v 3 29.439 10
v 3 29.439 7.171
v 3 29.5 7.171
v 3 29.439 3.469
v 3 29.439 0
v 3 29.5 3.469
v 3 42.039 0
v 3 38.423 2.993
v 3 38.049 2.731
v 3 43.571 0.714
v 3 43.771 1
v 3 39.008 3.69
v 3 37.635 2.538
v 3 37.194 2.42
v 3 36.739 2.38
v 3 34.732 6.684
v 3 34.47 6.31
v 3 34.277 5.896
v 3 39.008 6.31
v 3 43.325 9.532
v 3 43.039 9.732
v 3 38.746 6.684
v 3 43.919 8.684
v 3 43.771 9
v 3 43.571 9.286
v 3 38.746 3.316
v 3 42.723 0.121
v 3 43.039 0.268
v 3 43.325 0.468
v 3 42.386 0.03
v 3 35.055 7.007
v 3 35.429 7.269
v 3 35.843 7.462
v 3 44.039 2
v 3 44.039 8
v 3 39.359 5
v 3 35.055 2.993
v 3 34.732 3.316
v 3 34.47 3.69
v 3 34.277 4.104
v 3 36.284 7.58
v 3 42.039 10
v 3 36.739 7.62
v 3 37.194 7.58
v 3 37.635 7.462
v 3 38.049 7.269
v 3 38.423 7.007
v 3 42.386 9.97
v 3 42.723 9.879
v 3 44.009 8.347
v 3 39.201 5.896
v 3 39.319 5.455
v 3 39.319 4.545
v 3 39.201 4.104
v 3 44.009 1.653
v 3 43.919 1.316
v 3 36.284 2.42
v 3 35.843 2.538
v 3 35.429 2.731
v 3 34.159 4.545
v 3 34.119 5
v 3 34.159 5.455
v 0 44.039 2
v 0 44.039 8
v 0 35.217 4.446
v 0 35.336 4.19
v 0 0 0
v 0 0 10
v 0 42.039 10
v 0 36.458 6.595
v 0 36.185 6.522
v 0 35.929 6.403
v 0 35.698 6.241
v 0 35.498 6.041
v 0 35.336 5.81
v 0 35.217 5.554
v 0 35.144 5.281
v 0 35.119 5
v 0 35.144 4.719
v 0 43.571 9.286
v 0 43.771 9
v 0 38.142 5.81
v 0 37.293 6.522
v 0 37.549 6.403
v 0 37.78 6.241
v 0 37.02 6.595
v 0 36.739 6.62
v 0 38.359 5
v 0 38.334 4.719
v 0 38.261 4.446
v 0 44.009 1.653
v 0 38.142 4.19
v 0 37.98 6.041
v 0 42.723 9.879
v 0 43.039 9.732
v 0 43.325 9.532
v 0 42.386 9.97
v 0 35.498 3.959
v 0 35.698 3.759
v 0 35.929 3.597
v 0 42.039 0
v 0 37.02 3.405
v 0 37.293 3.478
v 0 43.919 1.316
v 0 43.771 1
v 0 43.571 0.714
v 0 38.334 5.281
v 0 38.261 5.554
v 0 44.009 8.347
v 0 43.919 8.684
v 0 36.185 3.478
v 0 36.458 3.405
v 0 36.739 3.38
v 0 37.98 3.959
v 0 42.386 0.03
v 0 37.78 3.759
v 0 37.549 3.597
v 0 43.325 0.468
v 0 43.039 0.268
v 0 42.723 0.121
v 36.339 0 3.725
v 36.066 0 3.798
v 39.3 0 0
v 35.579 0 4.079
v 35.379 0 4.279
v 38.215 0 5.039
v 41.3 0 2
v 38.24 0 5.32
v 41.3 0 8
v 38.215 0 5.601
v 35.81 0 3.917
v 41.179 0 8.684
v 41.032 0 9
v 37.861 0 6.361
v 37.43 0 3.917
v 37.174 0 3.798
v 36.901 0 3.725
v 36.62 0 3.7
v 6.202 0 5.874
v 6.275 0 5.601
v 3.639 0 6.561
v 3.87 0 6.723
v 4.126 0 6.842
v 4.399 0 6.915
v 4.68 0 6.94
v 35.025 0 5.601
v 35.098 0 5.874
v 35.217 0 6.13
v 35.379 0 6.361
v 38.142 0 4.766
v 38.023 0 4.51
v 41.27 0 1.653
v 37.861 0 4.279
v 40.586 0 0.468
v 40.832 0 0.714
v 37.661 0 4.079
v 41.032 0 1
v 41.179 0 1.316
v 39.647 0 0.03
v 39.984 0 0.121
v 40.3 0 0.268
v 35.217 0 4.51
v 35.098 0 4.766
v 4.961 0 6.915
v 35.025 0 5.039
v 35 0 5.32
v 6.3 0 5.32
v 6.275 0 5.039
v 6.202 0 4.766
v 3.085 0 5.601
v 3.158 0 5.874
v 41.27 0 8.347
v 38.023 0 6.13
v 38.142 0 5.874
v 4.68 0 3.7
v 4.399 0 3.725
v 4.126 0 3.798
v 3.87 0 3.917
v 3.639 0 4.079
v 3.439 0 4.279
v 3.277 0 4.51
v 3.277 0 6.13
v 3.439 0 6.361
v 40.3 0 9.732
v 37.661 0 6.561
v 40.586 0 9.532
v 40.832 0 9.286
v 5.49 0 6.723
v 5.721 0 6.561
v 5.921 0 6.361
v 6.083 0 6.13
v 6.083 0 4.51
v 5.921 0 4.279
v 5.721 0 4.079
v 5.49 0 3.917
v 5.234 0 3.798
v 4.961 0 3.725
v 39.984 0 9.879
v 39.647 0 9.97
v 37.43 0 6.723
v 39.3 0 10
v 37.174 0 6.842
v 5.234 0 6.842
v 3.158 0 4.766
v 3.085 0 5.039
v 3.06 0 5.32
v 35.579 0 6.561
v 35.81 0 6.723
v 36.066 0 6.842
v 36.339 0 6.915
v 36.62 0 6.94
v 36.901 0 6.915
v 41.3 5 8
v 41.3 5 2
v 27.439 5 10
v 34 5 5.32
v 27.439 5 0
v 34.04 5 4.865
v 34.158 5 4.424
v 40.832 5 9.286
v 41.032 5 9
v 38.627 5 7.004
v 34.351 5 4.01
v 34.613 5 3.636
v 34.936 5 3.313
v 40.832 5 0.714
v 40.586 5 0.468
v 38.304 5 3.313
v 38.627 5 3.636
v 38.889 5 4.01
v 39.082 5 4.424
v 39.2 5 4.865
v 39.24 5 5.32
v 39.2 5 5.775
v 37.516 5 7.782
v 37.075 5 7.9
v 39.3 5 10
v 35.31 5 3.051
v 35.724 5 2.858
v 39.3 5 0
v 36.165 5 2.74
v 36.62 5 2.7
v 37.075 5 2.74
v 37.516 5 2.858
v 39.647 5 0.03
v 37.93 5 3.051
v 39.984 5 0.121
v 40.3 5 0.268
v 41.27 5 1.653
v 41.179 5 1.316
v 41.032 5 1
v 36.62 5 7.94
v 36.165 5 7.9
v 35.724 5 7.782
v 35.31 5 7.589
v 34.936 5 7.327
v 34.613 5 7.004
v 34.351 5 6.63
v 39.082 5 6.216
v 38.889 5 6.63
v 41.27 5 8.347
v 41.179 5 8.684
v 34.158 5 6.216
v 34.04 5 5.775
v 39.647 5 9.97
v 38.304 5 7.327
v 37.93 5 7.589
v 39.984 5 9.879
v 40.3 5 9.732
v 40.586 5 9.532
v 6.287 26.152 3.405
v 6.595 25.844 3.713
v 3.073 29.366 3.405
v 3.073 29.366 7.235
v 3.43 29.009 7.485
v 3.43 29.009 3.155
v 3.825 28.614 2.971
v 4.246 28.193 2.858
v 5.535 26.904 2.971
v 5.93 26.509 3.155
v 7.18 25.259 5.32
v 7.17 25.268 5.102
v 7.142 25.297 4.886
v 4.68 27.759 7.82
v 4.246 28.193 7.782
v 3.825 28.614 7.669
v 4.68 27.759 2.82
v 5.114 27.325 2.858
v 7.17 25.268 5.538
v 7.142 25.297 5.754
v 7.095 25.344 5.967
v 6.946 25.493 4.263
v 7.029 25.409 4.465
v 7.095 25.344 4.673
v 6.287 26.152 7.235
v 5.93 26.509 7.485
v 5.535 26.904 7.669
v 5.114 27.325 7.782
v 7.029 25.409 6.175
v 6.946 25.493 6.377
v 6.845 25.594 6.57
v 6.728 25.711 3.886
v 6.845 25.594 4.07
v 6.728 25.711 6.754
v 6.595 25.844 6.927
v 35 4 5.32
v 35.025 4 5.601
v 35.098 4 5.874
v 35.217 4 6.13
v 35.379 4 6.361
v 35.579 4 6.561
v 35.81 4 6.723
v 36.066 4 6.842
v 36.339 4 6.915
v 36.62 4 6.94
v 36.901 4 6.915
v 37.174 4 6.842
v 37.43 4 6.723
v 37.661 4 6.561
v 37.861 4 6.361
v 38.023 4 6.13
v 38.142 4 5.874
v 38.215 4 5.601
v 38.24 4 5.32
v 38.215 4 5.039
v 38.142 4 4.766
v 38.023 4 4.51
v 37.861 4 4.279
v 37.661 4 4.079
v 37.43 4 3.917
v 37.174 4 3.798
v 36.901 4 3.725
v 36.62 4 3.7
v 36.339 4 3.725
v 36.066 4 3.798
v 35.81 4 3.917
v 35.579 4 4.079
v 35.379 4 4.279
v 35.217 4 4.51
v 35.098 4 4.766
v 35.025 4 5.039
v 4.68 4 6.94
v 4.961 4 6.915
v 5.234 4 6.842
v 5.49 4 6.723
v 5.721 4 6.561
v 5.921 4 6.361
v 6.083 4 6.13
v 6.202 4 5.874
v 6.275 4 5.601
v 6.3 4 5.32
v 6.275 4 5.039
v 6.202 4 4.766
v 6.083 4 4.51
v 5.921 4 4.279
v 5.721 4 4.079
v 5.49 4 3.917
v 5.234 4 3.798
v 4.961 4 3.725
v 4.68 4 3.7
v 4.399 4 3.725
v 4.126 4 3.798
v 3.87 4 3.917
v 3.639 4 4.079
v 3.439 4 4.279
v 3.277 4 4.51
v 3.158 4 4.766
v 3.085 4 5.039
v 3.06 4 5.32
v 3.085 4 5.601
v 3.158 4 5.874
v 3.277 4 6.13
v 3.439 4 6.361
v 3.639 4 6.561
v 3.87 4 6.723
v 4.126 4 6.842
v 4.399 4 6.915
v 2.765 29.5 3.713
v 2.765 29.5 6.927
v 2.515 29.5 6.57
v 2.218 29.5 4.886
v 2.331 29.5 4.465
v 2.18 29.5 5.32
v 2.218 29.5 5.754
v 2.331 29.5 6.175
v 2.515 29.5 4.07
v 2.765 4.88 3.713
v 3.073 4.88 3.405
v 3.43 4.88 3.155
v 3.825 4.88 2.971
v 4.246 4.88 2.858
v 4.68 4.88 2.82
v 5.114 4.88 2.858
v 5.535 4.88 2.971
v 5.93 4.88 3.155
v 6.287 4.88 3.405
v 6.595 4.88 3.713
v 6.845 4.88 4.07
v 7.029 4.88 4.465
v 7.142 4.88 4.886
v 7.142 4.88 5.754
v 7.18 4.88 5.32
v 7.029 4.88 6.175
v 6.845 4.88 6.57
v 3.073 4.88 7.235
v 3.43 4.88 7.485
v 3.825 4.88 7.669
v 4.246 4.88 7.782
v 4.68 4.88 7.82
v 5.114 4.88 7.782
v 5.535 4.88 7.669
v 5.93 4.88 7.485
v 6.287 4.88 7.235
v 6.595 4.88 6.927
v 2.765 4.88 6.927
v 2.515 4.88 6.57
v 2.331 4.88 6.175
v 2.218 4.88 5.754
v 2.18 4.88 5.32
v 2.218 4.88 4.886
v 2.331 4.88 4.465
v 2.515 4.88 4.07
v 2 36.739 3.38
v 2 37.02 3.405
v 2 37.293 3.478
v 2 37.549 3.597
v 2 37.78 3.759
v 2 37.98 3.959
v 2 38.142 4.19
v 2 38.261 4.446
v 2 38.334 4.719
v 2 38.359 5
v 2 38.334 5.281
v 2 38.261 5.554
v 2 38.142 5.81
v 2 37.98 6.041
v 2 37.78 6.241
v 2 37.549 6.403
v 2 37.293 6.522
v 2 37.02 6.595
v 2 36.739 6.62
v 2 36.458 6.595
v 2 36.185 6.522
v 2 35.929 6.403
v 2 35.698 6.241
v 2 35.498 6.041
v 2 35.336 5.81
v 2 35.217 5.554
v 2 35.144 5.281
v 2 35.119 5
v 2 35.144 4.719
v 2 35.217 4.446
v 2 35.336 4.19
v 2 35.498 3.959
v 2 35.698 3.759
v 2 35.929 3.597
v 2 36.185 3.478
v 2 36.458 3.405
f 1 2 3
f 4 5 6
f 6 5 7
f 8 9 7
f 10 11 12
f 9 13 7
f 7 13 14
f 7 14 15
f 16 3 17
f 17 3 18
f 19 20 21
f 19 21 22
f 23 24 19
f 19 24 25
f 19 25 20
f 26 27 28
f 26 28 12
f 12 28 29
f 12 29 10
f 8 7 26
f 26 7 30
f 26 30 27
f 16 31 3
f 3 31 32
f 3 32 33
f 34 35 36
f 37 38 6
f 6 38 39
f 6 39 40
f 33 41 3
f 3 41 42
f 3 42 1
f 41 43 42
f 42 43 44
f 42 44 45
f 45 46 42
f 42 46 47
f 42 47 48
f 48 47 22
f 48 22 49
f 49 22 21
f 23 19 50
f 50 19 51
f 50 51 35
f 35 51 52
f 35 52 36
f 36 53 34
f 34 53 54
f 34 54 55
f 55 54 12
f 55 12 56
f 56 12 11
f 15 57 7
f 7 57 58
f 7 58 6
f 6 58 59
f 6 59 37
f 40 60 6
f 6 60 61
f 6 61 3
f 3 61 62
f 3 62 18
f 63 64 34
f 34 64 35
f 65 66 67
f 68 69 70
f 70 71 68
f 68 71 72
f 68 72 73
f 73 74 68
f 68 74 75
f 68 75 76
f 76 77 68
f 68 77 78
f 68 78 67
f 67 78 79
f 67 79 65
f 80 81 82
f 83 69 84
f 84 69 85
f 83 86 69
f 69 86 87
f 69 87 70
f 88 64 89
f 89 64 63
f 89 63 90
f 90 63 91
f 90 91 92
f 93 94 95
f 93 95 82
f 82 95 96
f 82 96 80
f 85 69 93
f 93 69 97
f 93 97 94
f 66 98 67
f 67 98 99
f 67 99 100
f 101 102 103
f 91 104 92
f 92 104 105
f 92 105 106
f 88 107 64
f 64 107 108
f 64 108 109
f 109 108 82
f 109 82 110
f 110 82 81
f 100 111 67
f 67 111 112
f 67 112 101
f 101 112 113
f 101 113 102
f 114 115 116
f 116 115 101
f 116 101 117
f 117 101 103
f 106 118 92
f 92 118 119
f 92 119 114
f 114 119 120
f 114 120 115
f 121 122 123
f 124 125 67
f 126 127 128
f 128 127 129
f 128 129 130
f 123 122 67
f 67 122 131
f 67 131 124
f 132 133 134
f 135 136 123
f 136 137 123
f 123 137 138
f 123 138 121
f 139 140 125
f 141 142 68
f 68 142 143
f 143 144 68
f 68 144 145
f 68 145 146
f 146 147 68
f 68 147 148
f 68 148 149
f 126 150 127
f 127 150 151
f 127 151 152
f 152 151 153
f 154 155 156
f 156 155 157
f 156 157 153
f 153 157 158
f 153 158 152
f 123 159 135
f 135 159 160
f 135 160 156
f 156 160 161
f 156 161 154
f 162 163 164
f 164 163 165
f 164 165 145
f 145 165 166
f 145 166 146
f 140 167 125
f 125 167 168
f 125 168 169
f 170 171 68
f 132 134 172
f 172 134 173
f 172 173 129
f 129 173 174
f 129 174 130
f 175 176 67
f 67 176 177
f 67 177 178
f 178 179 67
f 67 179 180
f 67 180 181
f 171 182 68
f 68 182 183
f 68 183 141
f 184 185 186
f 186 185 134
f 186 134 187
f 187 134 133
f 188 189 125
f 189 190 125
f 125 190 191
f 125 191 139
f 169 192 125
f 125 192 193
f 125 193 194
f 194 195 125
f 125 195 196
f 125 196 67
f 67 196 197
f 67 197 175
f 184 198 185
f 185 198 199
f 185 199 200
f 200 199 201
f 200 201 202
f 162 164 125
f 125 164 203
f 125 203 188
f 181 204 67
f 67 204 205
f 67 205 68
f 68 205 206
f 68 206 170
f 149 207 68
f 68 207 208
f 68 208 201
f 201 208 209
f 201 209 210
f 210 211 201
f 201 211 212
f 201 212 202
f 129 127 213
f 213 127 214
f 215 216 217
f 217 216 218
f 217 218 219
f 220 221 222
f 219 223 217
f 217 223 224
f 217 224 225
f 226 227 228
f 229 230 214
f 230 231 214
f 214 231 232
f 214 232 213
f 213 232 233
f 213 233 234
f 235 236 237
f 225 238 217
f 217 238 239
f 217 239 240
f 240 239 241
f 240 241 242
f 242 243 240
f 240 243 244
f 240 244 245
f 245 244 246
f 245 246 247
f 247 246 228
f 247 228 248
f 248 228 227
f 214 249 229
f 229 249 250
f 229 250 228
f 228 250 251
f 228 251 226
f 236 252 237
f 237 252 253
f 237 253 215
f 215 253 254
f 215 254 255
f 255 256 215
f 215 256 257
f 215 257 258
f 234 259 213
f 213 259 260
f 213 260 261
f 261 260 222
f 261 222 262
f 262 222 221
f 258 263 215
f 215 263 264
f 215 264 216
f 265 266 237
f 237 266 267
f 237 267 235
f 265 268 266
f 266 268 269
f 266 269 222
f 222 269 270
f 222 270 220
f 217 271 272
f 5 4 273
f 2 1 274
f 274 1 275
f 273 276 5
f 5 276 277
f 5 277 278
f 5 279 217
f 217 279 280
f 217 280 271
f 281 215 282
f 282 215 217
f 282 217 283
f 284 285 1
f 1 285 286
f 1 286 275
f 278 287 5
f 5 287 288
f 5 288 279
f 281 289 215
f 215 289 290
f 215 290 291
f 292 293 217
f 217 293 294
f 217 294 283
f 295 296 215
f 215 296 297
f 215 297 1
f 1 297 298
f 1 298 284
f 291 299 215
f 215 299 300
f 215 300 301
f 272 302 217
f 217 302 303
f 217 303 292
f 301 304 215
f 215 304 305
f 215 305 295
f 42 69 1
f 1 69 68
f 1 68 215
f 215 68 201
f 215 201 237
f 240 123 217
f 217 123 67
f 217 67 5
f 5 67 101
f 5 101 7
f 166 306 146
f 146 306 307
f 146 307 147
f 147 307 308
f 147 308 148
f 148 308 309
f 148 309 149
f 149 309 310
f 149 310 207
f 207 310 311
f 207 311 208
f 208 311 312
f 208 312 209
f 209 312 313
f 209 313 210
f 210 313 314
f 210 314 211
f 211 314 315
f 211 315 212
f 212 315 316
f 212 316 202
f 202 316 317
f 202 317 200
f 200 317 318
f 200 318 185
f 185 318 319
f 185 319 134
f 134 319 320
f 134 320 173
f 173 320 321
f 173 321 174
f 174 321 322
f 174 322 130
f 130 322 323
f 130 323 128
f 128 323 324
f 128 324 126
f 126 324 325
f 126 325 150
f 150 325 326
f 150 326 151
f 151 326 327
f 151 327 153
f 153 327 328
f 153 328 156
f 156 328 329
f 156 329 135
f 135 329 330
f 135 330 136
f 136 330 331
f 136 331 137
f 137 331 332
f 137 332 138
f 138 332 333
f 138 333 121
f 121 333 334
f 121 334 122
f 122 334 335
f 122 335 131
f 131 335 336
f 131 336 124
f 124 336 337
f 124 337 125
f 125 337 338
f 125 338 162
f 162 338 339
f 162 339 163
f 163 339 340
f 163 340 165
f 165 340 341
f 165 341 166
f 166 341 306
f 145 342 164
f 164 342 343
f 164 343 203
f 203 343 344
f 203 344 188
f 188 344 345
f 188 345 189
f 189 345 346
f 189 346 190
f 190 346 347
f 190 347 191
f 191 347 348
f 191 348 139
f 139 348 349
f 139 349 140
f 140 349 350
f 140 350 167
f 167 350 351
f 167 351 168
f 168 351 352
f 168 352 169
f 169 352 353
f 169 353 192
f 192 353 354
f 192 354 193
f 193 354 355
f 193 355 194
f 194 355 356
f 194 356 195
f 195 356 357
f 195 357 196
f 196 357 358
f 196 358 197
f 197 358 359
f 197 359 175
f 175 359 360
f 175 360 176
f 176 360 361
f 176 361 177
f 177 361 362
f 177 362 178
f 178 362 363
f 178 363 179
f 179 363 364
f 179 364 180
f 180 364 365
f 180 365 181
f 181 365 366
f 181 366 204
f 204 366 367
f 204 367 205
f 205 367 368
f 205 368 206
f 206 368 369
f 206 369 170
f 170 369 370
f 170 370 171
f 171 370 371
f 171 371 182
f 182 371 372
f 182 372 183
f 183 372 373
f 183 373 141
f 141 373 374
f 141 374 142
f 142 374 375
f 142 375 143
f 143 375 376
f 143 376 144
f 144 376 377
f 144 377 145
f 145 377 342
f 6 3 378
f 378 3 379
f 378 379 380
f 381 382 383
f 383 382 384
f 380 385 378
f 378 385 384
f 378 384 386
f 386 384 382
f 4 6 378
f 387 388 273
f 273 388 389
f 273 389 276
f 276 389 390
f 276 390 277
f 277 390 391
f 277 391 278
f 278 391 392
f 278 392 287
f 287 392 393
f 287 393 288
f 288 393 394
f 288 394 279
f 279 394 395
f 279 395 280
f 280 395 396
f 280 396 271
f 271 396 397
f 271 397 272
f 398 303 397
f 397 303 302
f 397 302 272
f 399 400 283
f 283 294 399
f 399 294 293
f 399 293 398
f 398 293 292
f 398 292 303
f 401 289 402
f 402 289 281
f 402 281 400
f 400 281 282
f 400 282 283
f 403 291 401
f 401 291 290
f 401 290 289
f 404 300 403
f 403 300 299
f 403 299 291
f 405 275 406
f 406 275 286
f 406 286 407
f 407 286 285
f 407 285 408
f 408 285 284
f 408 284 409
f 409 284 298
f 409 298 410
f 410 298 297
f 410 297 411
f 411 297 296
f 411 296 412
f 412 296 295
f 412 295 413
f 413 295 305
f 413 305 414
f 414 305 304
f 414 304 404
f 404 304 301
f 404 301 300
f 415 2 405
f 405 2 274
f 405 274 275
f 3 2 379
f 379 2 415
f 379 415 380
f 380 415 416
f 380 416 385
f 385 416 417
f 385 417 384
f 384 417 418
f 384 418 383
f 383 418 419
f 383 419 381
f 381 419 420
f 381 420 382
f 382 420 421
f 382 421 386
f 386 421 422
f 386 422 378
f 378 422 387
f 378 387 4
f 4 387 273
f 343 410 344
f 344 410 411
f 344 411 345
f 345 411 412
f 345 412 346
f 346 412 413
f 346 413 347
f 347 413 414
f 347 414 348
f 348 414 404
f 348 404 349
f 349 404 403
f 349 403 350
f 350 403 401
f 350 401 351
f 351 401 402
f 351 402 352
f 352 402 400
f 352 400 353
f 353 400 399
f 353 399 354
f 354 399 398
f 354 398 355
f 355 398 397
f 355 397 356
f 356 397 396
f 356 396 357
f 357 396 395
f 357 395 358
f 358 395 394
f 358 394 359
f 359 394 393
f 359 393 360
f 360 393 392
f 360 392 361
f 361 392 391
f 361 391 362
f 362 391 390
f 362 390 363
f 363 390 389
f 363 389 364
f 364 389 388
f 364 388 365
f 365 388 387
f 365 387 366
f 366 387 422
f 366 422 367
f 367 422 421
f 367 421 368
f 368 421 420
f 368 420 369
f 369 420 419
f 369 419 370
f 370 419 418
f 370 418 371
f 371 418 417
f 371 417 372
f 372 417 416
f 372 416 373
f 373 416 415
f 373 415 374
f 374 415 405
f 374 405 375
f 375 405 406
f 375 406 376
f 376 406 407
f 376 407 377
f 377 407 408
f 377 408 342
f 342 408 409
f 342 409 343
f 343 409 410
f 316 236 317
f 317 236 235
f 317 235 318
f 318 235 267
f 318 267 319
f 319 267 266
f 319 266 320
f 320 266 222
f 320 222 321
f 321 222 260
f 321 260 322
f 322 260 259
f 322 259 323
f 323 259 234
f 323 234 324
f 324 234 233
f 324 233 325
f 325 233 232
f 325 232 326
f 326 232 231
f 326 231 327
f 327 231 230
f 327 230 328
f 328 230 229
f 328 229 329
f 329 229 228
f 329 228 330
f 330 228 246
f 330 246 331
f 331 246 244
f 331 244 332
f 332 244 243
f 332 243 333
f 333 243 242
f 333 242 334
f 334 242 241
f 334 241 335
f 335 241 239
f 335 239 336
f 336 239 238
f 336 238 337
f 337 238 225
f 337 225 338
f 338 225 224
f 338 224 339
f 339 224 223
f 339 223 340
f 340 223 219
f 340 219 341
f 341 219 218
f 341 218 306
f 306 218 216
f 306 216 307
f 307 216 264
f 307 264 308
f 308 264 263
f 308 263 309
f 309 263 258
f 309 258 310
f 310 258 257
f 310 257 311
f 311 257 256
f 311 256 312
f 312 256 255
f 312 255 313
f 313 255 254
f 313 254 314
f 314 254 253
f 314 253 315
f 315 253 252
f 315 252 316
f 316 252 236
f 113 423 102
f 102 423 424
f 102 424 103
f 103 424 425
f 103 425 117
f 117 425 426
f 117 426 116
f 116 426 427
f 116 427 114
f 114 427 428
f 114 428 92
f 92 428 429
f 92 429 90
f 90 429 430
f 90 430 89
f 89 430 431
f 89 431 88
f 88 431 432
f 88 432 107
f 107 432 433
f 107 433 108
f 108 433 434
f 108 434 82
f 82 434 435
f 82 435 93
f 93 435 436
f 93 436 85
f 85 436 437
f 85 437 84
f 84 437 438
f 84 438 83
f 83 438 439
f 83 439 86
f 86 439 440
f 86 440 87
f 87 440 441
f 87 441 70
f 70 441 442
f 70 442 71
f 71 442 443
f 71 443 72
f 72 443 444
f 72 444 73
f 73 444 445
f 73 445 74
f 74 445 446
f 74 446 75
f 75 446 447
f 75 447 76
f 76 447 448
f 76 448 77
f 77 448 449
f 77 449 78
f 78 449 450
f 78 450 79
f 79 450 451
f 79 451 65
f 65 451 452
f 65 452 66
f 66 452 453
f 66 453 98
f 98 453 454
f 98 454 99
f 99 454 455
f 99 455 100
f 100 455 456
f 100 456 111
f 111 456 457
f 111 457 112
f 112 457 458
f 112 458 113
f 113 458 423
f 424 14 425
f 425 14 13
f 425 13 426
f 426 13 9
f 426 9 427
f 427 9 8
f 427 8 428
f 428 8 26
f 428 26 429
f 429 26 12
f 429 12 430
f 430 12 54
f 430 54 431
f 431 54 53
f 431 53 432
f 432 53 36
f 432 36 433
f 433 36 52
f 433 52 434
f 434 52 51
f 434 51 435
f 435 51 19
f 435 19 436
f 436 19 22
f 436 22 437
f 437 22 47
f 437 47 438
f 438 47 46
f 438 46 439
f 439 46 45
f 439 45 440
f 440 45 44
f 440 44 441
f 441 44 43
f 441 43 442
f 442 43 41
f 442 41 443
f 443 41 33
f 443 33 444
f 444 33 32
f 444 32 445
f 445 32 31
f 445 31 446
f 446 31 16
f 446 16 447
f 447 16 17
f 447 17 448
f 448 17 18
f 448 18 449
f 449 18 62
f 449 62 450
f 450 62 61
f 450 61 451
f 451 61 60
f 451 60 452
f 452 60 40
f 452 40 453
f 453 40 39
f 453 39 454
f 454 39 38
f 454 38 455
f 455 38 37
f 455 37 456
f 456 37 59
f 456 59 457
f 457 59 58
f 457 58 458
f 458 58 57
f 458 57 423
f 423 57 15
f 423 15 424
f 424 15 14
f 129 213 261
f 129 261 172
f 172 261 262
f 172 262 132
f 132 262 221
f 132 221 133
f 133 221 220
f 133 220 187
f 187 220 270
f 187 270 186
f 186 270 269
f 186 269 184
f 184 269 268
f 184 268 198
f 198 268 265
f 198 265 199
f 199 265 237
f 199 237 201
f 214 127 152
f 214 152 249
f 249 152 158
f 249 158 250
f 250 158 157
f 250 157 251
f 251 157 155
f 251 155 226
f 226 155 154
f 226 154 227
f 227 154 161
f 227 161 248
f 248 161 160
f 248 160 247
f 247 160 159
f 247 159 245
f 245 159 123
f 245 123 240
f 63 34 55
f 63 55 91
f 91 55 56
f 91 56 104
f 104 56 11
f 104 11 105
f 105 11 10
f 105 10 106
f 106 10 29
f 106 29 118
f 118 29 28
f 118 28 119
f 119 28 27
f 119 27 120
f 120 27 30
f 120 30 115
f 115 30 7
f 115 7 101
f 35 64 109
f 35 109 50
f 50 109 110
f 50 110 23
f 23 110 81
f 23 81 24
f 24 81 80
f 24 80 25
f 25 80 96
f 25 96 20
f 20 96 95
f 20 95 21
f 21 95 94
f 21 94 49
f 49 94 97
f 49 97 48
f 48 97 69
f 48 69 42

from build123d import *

# Parameters (mm, degrees)
ESTRUSIONE_ESTRUSIONE1_DEPTH = 10
SCHIZZO3_R                   = 1.62
TAGLIO_ESTRUSIONE1_DEPTH     = 8
SCHIZZO5_R                   = 1.62
TAGLIO_ESTRUSIONE4_DEPTH     = 24.5
SCHIZZO5_4_R                 = 2.5
TAGLIO_ESTRUSIONE5_DEPTH     = 24.5
SMUSSO4_SIZE                 = 1
SMUSSO5_SIZE                 = 1
SCHIZZO6_R                   = 1.62
TAGLIO_ESTRUSIONE6_DEPTH     = 24.5
SMUSSO6_SIZE                 = 1
RACCORDO1_R                  = 2


with BuildPart() as part:
    # Schizzo2 → Estrusione-Estrusione1 (new body)
    with BuildSketch(Plane.XY):
        Polygon((3, 29.438649361), (27.438649361, 5), (41.3, 5), (41.3, 0), (0, 0), (0, 5), (0, 44.039135738), (3, 44.039135738), align=None)
    extrude(amount=ESTRUSIONE_ESTRUSIONE1_DEPTH)

    # Schizzo3 → Taglio-Estrusione1 (cut)
    with BuildSketch(Plane(origin=(0, 5, 0), x_dir=(1, 0, 0), z_dir=(0, 1, 0))):
        with Locations(Location((36.62, -5.32, 0), (0, 0, 180))):
            Circle(SCHIZZO3_R)
    extrude(amount=-TAGLIO_ESTRUSIONE1_DEPTH, mode=Mode.SUBTRACT)

    # Schizzo5 → Taglio-Estrusione4 (cut)
    with BuildSketch(Plane(origin=(0, 5, 0), x_dir=(1, 0, 0), z_dir=(0, 1, 0))):
        with Locations(Location((4.68, -5.32, 0), (0, 0, 270))):
            Circle(SCHIZZO5_R)
    extrude(amount=-TAGLIO_ESTRUSIONE4_DEPTH, mode=Mode.SUBTRACT)

    # Schizzo5<4> → Taglio-Estrusione5 (cut)
    with BuildSketch(Plane(origin=(0, 5, 0), x_dir=(1, 0, 0), z_dir=(0, 1, 0))):
        with Locations(Location((4.68, -5.32, 0), (0, 0, 132.221614055))):
            Circle(SCHIZZO5_4_R)
    extrude(amount=TAGLIO_ESTRUSIONE5_DEPTH, mode=Mode.SUBTRACT)

    # Smusso4
    # the kernel refuses this chamfer: 1 mm, written as the material it takes off along each edge
    with BuildSketch(Plane(origin=(4.68, 5, 5.32), x_dir=(0, 0, 1), z_dir=(-1, 0, 0))) as smusso4_piece_1_section:
        Polygon((1.62 + SMUSSO4_SIZE, 0), (1.62, -SMUSSO4_SIZE), (1.62, 0), align=None)
    smusso4_piece_1 = revolve(axis=Axis((4.68, 5, 5.32), (0, 1, 0)), mode=Mode.PRIVATE)
    smusso4_piece_1 = smusso4_piece_1 & Plane(origin=(4.68, 4.439074745, 5.32), x_dir=(-0.6719999999981088, 0, -0.740551146108452), z_dir=(0, -1, 0)) * Cylinder(2.5, 11, mode=Mode.PRIVATE)
    add(smusso4_piece_1, mode=Mode.SUBTRACT)

    # Smusso5
    smusso5_edges = [part.edges().sort_by_distance(p)[0] for p in [
        (38.24, 5, 5.32),
    ]]
    chamfer(smusso5_edges, length=SMUSSO5_SIZE)

    # Schizzo6 → Taglio-Estrusione6 (cut)
    with BuildSketch(Plane(origin=(3, 0, 0), x_dir=(0, 0, -1), z_dir=(1, 0, 0))):
        with Locations((-5, 36.73889255)):
            Circle(SCHIZZO6_R)
    extrude(amount=-TAGLIO_ESTRUSIONE6_DEPTH, mode=Mode.SUBTRACT)

    # Smusso6
    smusso6_edges = [part.edges().sort_by_distance(p)[0] for p in [
        (3, 36.73889255, 6.62),
    ]]
    chamfer(smusso6_edges, length=SMUSSO6_SIZE)

    # Raccordo1
    raccordo1_edges = [part.edges().sort_by_distance(p)[0] for p in [
        (1.5, 44.039135738, 0),
        (41.3, 2.5, 10),
        (1.5, 44.039135738, 10),
        (41.3, 2.5, 0),
    ]]
    fillet(raccordo1_edges, radius=RACCORDO1_R)


solid = part.part
